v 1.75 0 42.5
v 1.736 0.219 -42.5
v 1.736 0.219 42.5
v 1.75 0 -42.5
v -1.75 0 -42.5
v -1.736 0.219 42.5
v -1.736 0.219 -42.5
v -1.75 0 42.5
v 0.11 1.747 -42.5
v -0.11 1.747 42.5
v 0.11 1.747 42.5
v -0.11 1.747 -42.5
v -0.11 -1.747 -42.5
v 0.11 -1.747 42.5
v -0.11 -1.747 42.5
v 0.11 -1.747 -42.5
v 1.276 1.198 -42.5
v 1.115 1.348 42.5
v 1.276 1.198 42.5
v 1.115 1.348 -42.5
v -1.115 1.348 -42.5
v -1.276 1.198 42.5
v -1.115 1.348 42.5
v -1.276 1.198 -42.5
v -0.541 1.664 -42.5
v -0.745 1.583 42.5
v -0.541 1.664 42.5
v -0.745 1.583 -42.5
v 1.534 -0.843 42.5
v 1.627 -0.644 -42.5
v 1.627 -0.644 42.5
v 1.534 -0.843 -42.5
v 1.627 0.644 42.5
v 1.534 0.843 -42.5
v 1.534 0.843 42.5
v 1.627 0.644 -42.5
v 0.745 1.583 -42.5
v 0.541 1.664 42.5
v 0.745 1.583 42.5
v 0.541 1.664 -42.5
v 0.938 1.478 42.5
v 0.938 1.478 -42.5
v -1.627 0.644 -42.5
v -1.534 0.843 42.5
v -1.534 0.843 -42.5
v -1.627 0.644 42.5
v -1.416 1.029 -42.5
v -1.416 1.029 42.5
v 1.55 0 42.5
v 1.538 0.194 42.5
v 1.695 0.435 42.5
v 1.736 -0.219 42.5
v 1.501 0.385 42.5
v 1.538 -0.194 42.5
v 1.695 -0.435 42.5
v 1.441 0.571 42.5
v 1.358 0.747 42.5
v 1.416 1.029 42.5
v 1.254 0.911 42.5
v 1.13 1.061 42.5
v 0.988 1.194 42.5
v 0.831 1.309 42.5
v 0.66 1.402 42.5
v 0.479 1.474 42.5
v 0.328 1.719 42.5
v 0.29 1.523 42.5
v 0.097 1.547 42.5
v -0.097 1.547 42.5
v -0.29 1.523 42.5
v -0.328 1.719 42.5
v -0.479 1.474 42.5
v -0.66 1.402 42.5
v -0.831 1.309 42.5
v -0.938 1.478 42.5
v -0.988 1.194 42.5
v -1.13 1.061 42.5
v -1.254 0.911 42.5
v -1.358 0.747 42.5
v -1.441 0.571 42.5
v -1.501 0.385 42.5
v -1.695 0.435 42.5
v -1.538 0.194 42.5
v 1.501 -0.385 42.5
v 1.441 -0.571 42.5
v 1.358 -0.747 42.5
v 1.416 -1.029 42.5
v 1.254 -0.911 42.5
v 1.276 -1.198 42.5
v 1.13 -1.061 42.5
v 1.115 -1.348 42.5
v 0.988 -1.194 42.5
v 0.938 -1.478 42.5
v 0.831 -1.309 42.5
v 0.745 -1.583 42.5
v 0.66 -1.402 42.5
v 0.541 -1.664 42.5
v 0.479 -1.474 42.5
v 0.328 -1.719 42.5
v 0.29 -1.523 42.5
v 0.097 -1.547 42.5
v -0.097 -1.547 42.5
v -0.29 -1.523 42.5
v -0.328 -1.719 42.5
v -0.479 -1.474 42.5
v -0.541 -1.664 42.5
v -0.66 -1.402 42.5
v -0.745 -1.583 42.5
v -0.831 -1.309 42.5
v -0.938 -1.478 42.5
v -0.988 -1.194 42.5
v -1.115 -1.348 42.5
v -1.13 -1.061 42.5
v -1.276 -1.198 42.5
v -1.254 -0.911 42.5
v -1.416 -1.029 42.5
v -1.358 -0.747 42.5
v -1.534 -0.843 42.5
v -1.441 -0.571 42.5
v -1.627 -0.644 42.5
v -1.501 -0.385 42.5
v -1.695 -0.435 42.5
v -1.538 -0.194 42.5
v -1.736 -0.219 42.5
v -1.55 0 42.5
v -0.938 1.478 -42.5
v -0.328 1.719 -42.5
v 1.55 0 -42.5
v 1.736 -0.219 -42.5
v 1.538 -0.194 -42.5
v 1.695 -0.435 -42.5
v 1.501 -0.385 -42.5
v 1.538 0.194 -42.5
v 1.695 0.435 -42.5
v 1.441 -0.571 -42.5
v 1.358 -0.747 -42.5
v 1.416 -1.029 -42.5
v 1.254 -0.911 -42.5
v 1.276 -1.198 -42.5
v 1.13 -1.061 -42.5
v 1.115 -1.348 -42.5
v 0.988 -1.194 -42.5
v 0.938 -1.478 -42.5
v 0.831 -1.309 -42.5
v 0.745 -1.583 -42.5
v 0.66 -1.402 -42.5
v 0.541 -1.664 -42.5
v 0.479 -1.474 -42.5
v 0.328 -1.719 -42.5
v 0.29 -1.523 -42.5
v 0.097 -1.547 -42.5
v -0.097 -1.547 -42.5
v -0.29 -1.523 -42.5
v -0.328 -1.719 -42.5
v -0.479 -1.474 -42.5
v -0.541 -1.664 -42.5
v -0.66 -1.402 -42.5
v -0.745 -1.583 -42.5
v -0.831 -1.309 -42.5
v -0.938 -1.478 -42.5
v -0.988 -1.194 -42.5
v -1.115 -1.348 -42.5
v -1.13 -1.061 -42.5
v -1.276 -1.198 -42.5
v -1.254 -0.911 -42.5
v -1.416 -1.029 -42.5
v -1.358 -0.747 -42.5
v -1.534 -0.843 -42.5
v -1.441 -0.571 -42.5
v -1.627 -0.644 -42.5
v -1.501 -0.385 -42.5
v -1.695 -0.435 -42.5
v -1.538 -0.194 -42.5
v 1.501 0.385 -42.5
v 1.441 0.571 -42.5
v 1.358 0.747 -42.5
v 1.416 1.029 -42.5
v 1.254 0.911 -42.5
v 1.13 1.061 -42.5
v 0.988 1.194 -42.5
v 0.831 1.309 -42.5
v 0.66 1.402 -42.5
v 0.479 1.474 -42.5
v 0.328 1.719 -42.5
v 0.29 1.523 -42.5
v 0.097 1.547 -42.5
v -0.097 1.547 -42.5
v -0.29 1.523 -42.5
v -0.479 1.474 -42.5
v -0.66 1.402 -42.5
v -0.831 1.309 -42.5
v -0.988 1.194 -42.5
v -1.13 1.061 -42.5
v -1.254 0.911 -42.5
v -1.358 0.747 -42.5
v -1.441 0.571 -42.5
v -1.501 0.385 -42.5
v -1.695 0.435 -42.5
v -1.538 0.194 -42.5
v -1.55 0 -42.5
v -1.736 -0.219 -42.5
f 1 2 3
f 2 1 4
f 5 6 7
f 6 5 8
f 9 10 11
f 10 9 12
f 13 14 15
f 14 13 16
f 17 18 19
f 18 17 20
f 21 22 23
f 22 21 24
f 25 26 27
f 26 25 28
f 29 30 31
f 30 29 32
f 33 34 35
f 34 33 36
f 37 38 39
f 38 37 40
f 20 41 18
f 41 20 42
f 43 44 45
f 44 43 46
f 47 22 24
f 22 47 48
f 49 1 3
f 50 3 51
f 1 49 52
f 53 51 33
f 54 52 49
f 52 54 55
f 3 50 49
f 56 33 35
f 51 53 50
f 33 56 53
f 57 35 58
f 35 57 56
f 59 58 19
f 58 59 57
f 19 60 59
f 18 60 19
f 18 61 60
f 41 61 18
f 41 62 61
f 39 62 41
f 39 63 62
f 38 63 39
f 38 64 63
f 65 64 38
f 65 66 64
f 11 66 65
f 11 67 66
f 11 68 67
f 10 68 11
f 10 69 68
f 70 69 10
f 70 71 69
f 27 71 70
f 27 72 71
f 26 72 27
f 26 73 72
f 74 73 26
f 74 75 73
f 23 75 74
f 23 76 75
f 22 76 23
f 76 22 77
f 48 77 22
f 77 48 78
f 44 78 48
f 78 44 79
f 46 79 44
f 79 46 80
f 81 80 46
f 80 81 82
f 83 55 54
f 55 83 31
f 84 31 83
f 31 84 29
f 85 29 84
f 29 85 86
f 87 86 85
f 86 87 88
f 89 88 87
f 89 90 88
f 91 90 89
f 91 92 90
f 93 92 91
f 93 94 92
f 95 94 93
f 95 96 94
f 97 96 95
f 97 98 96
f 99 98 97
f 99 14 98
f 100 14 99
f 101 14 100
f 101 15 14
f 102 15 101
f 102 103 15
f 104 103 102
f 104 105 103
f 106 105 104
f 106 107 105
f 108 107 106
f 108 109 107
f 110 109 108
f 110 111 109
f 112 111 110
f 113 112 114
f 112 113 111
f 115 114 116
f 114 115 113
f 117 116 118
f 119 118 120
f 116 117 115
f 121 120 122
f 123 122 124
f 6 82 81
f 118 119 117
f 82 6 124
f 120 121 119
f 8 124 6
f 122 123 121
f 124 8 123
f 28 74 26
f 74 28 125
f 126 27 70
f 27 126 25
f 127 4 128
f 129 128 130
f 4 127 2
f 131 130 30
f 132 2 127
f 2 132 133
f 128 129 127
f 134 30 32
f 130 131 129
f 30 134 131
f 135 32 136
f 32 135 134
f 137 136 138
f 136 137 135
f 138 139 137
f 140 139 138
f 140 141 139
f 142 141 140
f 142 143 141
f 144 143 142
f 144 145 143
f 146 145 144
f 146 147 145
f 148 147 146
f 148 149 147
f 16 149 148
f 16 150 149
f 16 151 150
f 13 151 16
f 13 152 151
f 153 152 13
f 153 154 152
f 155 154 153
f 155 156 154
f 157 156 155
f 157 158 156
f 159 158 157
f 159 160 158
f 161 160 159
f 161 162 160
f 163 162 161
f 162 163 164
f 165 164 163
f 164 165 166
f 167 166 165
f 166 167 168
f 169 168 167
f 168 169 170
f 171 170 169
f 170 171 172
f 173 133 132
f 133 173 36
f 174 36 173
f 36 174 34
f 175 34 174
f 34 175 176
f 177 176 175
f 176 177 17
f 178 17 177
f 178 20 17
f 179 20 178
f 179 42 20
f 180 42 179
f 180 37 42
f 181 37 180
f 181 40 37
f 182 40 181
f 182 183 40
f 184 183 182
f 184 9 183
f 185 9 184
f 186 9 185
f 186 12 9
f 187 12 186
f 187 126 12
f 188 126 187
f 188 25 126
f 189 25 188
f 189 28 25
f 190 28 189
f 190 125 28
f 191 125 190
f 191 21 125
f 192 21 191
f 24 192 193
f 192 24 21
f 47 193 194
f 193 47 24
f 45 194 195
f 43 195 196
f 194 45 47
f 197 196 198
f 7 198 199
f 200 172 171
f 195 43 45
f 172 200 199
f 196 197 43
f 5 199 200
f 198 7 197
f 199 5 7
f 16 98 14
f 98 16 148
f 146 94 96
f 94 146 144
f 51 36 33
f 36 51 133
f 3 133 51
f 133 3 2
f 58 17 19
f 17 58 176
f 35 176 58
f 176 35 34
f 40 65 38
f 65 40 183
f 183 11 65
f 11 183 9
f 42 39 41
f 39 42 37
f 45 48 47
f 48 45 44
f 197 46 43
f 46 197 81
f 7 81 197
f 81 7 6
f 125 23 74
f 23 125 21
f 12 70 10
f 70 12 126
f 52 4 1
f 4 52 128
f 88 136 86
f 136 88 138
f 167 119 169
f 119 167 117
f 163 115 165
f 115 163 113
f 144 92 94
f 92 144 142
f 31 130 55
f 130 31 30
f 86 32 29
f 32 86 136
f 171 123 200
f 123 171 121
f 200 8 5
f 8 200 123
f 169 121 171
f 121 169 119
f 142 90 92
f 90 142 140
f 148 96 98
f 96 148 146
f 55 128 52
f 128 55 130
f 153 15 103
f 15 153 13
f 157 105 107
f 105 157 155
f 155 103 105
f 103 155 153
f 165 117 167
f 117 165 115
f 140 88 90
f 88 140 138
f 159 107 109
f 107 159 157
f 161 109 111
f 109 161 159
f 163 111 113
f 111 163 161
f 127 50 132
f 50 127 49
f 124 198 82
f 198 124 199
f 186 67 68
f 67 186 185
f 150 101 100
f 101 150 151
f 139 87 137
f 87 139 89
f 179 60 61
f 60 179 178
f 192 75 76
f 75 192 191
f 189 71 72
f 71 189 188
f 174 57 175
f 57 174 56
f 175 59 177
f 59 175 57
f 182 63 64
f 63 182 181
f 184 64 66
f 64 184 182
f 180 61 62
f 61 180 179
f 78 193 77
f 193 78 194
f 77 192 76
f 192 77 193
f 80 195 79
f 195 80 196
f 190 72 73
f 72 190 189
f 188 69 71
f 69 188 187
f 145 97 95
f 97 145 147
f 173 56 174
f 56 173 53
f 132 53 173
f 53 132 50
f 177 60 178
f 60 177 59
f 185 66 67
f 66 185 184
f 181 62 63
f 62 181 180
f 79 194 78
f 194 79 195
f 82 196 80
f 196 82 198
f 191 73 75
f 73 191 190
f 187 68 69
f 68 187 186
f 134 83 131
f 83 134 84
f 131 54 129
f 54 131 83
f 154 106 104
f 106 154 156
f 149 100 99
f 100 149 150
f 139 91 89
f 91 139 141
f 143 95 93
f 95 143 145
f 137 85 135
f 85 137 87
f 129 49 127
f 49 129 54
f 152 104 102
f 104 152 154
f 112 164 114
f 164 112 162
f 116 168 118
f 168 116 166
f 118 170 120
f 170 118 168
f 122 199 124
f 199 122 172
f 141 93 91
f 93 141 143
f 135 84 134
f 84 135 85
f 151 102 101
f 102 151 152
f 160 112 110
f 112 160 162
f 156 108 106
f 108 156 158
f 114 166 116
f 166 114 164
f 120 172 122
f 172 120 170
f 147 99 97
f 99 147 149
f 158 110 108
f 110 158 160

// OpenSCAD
$fn = 50;


difference() {
	union() {
		translate(v = [0, 0, -42.5000000000]) {
			cylinder(h = 85, r = 1.7500000000);
		}
	}
	union() {
		translate(v = [0, 0, -100.0000000000]) {
			cylinder(h = 200, r = 1.5500000000);
		}
	}
}
